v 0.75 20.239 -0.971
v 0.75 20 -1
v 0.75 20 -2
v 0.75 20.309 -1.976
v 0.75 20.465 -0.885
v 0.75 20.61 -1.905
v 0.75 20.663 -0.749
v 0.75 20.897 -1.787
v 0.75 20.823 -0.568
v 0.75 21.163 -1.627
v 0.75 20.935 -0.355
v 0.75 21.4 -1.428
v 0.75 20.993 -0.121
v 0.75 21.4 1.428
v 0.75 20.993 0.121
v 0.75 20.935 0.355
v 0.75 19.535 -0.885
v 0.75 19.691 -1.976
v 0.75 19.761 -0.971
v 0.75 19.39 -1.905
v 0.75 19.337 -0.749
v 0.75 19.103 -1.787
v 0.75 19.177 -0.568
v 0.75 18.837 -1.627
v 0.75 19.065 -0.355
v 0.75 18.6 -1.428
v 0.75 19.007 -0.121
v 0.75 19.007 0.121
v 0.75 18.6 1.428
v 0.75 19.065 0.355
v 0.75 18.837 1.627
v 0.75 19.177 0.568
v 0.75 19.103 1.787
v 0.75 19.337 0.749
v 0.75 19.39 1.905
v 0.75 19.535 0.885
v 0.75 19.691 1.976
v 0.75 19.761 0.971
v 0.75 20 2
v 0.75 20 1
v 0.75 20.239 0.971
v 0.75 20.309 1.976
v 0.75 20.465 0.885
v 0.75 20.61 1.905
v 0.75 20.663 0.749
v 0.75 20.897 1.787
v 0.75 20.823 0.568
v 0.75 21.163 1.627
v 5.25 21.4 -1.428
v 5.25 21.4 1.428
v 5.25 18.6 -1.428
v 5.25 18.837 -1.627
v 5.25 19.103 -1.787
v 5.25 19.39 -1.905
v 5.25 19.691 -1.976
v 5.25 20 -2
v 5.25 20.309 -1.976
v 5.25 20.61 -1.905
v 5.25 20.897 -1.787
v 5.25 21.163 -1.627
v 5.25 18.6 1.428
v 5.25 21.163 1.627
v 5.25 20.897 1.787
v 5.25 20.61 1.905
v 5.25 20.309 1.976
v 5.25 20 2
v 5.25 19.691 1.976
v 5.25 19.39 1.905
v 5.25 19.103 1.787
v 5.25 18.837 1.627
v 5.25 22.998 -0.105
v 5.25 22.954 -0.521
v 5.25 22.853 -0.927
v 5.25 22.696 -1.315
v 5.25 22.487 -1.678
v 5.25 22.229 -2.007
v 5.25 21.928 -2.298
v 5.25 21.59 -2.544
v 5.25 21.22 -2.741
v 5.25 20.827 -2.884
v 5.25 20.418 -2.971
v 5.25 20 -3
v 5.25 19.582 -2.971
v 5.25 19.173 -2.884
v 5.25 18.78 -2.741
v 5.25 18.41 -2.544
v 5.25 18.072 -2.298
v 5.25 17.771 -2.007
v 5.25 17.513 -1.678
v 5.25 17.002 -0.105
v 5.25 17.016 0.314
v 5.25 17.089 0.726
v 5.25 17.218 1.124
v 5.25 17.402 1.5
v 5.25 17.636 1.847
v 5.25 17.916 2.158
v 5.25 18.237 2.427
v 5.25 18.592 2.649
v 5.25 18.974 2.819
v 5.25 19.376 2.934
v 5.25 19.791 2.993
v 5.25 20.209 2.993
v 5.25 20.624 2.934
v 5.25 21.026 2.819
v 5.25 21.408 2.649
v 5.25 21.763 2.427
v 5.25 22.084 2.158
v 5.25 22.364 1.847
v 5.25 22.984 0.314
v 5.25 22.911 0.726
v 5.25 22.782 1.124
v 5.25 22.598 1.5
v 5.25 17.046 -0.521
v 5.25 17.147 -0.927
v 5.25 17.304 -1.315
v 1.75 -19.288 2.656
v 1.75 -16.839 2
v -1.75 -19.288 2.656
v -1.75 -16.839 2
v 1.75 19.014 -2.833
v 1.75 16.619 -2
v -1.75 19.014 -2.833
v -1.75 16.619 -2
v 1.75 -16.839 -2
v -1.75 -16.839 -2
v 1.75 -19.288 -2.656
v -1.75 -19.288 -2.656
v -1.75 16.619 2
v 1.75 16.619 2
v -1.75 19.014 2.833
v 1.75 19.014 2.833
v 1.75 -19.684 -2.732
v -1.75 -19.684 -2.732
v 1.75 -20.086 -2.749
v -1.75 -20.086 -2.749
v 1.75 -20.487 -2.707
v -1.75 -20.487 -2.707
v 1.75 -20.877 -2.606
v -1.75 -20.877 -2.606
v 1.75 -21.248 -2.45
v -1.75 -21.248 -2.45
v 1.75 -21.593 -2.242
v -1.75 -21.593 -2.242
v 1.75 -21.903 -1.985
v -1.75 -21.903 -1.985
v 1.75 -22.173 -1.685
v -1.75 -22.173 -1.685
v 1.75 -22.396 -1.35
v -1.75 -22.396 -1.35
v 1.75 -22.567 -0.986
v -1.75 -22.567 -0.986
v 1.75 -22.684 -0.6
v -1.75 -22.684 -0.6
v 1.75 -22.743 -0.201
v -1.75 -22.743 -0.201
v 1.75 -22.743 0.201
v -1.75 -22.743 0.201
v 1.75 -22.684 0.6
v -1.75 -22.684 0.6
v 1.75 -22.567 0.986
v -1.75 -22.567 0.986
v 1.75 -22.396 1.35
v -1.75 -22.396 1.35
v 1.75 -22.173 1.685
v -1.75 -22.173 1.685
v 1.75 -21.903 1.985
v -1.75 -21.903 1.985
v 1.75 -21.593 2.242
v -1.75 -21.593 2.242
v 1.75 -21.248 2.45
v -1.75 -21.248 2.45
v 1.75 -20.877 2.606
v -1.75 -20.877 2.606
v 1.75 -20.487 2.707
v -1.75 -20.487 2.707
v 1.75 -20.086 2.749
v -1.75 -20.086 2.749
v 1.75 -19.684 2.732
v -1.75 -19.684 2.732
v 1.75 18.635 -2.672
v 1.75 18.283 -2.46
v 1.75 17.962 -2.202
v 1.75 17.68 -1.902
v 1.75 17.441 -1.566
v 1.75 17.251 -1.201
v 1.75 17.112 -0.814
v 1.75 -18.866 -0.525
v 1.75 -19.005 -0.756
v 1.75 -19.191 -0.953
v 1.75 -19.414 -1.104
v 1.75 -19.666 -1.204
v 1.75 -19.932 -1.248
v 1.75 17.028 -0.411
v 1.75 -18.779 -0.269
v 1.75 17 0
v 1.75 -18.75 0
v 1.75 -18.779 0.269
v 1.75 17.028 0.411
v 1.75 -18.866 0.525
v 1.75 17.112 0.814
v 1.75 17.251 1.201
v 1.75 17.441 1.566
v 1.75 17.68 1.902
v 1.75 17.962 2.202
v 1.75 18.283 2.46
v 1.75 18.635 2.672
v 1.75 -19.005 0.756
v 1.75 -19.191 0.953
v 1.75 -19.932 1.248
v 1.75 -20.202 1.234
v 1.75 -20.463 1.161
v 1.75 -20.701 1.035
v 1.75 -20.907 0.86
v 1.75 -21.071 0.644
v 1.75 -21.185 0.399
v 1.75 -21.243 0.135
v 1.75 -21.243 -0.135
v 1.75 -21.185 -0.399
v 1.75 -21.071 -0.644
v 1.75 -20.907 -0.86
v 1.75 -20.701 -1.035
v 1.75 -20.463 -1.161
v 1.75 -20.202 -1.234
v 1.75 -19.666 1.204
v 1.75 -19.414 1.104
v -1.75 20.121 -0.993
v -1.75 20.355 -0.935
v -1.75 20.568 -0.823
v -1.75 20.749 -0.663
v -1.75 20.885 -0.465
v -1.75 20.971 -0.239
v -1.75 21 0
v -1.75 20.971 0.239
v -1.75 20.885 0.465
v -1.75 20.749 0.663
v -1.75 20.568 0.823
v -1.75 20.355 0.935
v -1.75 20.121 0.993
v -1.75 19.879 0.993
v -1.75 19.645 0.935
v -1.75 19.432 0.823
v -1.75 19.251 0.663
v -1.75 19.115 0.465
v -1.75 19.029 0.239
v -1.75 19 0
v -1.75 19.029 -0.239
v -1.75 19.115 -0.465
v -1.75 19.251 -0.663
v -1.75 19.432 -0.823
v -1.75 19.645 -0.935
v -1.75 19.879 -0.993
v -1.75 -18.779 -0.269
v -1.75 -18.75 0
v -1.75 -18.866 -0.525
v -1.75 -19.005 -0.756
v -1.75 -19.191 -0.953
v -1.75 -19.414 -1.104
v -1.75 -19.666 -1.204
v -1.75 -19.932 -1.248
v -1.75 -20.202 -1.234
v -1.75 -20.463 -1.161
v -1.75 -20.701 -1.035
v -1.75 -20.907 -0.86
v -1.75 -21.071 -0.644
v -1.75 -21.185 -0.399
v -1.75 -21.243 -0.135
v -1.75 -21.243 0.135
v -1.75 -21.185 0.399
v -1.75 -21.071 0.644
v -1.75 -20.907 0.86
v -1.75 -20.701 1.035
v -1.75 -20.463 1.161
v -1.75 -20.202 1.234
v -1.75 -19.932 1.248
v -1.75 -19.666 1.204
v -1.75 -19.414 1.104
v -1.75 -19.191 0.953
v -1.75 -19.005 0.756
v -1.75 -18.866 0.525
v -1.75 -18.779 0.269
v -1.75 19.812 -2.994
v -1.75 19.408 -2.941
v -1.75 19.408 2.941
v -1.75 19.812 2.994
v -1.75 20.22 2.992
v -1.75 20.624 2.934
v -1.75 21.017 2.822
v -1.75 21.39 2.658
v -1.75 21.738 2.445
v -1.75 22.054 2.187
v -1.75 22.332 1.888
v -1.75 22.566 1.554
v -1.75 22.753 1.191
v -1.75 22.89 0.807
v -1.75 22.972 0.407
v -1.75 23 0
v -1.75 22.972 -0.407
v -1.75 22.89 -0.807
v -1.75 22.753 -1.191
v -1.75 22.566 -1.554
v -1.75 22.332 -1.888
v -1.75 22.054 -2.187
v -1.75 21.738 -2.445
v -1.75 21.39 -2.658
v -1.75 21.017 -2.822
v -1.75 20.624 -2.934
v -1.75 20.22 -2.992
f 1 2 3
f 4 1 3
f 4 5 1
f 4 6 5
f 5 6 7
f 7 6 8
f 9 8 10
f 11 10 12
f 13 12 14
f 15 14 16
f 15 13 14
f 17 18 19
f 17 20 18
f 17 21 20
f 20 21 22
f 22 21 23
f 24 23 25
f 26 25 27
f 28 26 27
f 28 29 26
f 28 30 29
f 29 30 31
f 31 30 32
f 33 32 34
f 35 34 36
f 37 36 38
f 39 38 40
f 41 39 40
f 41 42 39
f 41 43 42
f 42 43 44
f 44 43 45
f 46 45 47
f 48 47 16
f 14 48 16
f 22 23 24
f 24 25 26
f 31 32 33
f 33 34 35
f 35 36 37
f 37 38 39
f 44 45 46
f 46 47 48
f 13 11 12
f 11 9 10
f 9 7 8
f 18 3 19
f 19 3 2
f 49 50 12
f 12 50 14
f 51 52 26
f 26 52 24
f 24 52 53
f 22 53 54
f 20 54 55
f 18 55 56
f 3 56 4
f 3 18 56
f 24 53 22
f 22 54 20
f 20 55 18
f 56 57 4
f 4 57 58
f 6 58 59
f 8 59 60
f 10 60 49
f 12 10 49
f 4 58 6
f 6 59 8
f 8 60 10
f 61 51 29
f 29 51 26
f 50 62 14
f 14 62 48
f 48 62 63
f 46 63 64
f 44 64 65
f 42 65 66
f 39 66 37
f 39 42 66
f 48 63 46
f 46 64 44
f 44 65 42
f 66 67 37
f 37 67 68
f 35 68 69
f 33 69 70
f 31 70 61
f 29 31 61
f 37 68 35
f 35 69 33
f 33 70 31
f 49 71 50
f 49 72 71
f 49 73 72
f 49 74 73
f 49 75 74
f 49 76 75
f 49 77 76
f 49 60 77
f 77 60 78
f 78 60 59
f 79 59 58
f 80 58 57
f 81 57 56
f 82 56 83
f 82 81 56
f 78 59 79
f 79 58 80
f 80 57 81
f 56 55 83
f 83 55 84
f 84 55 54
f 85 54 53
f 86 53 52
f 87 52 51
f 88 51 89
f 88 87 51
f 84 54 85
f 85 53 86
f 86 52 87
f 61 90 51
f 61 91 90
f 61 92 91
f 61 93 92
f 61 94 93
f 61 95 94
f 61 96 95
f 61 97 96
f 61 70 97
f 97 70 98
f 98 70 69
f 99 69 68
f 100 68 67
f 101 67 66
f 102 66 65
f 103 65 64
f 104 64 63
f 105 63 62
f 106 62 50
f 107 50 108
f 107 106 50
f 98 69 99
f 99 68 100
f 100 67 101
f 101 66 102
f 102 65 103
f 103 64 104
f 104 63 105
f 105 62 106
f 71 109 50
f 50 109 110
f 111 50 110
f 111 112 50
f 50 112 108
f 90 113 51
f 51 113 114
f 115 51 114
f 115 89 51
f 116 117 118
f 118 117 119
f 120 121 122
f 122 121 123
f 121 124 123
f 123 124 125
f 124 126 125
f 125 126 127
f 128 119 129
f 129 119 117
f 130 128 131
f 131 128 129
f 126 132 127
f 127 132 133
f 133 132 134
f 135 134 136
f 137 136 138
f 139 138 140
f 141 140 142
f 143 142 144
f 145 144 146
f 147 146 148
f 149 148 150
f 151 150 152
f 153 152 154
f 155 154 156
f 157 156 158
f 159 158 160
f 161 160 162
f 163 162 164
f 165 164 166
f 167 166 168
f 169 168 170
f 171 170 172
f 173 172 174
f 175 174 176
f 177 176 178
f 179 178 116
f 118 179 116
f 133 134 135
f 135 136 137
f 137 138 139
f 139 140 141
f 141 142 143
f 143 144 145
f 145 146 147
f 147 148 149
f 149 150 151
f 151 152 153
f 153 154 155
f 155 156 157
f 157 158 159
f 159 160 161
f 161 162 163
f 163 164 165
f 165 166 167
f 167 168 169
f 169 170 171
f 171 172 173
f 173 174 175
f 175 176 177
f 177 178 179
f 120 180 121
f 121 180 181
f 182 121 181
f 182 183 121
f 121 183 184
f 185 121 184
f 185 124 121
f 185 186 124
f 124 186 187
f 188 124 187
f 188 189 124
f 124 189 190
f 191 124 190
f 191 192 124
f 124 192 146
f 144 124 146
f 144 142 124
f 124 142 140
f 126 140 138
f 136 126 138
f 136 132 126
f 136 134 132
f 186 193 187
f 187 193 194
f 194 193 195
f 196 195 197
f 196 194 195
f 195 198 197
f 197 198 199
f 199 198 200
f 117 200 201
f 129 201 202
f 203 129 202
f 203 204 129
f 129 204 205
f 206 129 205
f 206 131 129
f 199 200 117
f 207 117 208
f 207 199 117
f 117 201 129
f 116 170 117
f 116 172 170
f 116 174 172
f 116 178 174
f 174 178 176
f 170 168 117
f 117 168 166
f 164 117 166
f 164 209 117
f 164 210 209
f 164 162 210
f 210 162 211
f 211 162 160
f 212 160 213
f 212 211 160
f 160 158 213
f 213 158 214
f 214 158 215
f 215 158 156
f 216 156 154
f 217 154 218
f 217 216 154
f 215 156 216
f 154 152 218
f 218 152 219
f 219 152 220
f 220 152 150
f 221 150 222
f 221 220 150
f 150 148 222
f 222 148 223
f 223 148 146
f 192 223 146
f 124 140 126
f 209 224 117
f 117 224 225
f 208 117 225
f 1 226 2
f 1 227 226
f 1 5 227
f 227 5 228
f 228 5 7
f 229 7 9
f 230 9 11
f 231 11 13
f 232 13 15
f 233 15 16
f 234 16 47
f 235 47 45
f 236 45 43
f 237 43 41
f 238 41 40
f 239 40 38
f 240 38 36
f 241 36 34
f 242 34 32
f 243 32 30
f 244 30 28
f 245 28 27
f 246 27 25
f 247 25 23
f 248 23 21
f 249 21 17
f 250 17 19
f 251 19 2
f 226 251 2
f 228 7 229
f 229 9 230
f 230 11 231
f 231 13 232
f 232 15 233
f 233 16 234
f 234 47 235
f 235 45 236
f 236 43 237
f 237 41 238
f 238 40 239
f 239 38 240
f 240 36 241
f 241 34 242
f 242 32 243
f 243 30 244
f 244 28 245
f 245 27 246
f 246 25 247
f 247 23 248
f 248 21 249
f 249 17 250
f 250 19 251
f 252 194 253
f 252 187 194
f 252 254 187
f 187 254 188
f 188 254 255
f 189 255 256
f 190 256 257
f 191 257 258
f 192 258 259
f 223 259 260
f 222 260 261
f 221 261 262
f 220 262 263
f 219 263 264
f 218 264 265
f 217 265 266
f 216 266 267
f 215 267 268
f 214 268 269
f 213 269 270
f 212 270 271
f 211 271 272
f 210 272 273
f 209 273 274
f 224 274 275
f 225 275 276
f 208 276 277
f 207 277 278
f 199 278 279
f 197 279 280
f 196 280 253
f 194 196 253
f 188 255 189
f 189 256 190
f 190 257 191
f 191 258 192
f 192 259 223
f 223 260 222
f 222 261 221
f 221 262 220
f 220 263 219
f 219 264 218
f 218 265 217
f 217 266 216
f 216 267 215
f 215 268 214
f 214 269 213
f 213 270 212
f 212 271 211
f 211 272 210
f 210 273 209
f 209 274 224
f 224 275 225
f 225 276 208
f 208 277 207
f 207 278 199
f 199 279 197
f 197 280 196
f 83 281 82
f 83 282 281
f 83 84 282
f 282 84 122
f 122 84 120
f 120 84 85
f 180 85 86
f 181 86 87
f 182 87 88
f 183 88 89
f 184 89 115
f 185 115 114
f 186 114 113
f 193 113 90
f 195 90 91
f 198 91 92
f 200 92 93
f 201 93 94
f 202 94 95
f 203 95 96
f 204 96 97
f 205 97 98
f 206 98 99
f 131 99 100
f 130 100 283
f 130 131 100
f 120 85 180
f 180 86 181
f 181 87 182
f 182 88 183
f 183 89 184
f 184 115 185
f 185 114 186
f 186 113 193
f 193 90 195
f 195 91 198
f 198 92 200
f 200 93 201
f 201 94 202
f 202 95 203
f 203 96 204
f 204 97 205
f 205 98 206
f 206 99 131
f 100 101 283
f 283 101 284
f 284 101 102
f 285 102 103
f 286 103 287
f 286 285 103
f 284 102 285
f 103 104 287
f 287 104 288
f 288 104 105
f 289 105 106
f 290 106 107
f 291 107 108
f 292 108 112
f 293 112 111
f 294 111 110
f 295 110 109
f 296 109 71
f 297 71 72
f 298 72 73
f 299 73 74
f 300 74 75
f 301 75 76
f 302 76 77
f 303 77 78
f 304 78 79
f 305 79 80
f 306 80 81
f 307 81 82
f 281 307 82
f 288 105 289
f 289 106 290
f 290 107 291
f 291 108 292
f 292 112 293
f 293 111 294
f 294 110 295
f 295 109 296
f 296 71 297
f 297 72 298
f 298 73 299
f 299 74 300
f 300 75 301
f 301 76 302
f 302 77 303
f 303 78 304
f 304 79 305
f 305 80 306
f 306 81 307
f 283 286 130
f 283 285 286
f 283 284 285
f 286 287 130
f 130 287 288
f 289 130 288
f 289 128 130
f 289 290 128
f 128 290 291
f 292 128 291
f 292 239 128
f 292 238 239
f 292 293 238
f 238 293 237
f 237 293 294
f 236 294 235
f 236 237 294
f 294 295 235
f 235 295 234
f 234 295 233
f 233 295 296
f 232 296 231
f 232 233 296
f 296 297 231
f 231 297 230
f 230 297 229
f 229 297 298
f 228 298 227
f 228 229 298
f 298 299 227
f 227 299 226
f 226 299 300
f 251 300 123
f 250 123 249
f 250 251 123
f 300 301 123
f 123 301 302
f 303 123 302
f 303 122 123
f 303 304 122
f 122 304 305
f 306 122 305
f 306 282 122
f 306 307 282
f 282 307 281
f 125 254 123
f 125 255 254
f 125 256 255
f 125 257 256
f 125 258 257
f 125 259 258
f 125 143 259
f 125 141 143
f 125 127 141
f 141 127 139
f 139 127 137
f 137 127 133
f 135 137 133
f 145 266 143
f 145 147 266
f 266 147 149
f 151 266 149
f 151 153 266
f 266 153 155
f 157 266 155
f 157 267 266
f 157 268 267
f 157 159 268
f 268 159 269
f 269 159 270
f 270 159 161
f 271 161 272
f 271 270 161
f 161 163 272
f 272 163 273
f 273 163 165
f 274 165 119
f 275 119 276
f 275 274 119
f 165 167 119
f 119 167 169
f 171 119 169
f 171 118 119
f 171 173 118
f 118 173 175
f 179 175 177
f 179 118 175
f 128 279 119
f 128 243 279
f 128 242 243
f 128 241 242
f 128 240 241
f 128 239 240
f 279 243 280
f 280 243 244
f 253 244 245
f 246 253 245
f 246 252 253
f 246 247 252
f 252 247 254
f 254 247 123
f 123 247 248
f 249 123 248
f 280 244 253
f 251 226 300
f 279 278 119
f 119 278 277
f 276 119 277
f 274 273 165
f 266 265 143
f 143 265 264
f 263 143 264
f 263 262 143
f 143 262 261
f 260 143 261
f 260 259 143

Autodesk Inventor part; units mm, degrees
ref_plane "YZ Plane" through (0, 0, 0) normal (1, 0, 0) x (0, 1, 0)
ref_plane "XZ Plane" through (0, 0, 0) normal (0, 1, 0) x (-1, 0, 0)
ref_plane "XY Plane" through (0, 0, 0) normal (0, 0, 1) x (1, 0, 0)
sketch "Sketch1" plane through (0, 0, 0) normal (1, 0, 0) x (0, 1, 0)
  line L0 (-32.2, 0) -> (32.2, 0) projected
  line L1 (0, -4.2) -> (0, 4.2) projected
  circle A0 centre (-20, 0) radius 1.25
  circle A1 centre (-20, 0) radius 3
  circle A2 centre (20, 0) radius 3 construction
  line L2 (-20, 3) -> (20, 3)
  line L3 (-20, -3) -> (20, -3)
  line L4 (20, 3) -> (20, -3) construction
  line L5 (20, 2) -> (20, -2) construction
  arc A3 (20, -3) -> (20, 3) centre (20, 0) ccw
  circle A4 centre (-20, 0) radius 2.2678 construction
  circle A5 centre (20, 0) radius 1
  point P0 (0, 0)
  dimension "d4" = 6
  dimension "d7" = 40
  dimension "d8" = 2.5
  dimension "d10" = 0
  dimension "d30" = 2
extrude "ext_main" add sketch "Sketch1" along normal mid plane 3.5 contours A0 L0 A1 | L0 A1 A0 | A1 L2 L1 L0 | L0 L1 L3 A1 | L1 L2 A3 L0 A5 | L0 A5 A3 L3 L1
sketch "Sketch3" plane through (0, 0, 0) normal (1, 0, 0) x (0, 1, 0)
  arc A0 (-20, 3) -> (-20, -3) centre (-20, 0) ccw projected
  circle A1 centre (-20, 0) radius 1.25 projected
  arc A2 (20, -3) -> (20, 3) centre (20, 0) ccw projected
  circle A3 centre (-20, 0) radius 3 construction
  circle A4 centre (20, 0) radius 3 construction
  line L0 (-17.7639, 2) -> (17.7639, 2) construction
  line L1 (-42.7, 0) -> (42.7, 0) projected
  line L2 (0, -4.2579) -> (0, 4.2579) projected
  line L3 (20, 3) -> (-20, 3) projected
  line L4 (16.6192, 2) -> (19.0141, 2.8334)
  arc A5 (20, 3) -> (19.0141, 2.8334) centre (20, 0) ccw
  line L5 (-16.8389, 2) -> (16.6192, 2)
  circle A6 centre (-20, 0) radius 2.75
  line L6 (-16.8389, 2) -> (-19.2882, 2.6563)
  arc A7 (19.0141, -2.8334) -> (20, -3) centre (20, 0) ccw
  line L7 (16.6192, -2) -> (-17.7639, -2) construction
  line L8 (-16.8389, -2) -> (-19.2882, -2.6563)
  line L9 (16.6192, -2) -> (-16.8389, -2)
  line L10 (16.6192, -2) -> (19.0141, -2.8334)
  point P0 (0, 0)
  dimension "d16" = 1
  dimension "d21" = 5.5
  dimension "d22" = 15
extrude "ext_cutaway" cut sketch "Sketch3" along normal through all both and the other way through all contours A6 L1 A1 | L1 A1 A6 | L5 L4 A5 A2 L1 L2 | L2 L1 A6 L6 L5 | A6 L1 L2 L9 L8 | L1 A2 A7 L10 L9 L2 keep common part
sketch "Sketch4" plane through (1.75, 0, 0) normal (1, 0, 0) x (0, 0, -1)
  arc A0 (2.8334, 19.0141) -> (-2.8334, 19.0141) centre (0, 20) ccw projected
  circle A1 centre (0, 20) radius 1 projected
  circle A2 centre (0, 20) radius 3
  line L0 (-4.2, 0) -> (4.2, 0) projected
  line L1 (-3, 20) -> (3, 20) construction
  circle A3 centre (0, 20) radius 2 construction
  arc A4 (-1.4283, 21.4) -> (-1.4283, 18.6) centre (0, 20) ccw
  arc A5 (1.4283, 18.6) -> (1.4283, 21.4) centre (0, 20) ccw
  line L2 (-1.4283, 21.4) -> (1.4283, 21.4)
  line L3 (-1.4283, 18.6) -> (1.4283, 18.6)
  point P0 (0, 0)
  dimension "d23" = 4
  dimension "d25" = 2.8
extrude "ext_potshaft" add sketch "Sketch4" along normal blind 3.5 contours A2 A0
extrude "ext_cut_potshaft" cut sketch "Sketch4" against normal blind 1 contours L2 A5 L3 A4
equation "\"d8\" = screw_m2_bore_loose"
equation "\"d30\" = screw_m2_bore_selfthreading"
equation "\"d21\" = general_bore_smallersupport_diameter"
equation "\"screw_m2_bore_loose\" = 2.5"
equation "\"screw_m2_bore_selfthreading\" = 2"
equation "\"general_bore_smallersupport_diameter\" = 5.5"
properties part number "empty"
